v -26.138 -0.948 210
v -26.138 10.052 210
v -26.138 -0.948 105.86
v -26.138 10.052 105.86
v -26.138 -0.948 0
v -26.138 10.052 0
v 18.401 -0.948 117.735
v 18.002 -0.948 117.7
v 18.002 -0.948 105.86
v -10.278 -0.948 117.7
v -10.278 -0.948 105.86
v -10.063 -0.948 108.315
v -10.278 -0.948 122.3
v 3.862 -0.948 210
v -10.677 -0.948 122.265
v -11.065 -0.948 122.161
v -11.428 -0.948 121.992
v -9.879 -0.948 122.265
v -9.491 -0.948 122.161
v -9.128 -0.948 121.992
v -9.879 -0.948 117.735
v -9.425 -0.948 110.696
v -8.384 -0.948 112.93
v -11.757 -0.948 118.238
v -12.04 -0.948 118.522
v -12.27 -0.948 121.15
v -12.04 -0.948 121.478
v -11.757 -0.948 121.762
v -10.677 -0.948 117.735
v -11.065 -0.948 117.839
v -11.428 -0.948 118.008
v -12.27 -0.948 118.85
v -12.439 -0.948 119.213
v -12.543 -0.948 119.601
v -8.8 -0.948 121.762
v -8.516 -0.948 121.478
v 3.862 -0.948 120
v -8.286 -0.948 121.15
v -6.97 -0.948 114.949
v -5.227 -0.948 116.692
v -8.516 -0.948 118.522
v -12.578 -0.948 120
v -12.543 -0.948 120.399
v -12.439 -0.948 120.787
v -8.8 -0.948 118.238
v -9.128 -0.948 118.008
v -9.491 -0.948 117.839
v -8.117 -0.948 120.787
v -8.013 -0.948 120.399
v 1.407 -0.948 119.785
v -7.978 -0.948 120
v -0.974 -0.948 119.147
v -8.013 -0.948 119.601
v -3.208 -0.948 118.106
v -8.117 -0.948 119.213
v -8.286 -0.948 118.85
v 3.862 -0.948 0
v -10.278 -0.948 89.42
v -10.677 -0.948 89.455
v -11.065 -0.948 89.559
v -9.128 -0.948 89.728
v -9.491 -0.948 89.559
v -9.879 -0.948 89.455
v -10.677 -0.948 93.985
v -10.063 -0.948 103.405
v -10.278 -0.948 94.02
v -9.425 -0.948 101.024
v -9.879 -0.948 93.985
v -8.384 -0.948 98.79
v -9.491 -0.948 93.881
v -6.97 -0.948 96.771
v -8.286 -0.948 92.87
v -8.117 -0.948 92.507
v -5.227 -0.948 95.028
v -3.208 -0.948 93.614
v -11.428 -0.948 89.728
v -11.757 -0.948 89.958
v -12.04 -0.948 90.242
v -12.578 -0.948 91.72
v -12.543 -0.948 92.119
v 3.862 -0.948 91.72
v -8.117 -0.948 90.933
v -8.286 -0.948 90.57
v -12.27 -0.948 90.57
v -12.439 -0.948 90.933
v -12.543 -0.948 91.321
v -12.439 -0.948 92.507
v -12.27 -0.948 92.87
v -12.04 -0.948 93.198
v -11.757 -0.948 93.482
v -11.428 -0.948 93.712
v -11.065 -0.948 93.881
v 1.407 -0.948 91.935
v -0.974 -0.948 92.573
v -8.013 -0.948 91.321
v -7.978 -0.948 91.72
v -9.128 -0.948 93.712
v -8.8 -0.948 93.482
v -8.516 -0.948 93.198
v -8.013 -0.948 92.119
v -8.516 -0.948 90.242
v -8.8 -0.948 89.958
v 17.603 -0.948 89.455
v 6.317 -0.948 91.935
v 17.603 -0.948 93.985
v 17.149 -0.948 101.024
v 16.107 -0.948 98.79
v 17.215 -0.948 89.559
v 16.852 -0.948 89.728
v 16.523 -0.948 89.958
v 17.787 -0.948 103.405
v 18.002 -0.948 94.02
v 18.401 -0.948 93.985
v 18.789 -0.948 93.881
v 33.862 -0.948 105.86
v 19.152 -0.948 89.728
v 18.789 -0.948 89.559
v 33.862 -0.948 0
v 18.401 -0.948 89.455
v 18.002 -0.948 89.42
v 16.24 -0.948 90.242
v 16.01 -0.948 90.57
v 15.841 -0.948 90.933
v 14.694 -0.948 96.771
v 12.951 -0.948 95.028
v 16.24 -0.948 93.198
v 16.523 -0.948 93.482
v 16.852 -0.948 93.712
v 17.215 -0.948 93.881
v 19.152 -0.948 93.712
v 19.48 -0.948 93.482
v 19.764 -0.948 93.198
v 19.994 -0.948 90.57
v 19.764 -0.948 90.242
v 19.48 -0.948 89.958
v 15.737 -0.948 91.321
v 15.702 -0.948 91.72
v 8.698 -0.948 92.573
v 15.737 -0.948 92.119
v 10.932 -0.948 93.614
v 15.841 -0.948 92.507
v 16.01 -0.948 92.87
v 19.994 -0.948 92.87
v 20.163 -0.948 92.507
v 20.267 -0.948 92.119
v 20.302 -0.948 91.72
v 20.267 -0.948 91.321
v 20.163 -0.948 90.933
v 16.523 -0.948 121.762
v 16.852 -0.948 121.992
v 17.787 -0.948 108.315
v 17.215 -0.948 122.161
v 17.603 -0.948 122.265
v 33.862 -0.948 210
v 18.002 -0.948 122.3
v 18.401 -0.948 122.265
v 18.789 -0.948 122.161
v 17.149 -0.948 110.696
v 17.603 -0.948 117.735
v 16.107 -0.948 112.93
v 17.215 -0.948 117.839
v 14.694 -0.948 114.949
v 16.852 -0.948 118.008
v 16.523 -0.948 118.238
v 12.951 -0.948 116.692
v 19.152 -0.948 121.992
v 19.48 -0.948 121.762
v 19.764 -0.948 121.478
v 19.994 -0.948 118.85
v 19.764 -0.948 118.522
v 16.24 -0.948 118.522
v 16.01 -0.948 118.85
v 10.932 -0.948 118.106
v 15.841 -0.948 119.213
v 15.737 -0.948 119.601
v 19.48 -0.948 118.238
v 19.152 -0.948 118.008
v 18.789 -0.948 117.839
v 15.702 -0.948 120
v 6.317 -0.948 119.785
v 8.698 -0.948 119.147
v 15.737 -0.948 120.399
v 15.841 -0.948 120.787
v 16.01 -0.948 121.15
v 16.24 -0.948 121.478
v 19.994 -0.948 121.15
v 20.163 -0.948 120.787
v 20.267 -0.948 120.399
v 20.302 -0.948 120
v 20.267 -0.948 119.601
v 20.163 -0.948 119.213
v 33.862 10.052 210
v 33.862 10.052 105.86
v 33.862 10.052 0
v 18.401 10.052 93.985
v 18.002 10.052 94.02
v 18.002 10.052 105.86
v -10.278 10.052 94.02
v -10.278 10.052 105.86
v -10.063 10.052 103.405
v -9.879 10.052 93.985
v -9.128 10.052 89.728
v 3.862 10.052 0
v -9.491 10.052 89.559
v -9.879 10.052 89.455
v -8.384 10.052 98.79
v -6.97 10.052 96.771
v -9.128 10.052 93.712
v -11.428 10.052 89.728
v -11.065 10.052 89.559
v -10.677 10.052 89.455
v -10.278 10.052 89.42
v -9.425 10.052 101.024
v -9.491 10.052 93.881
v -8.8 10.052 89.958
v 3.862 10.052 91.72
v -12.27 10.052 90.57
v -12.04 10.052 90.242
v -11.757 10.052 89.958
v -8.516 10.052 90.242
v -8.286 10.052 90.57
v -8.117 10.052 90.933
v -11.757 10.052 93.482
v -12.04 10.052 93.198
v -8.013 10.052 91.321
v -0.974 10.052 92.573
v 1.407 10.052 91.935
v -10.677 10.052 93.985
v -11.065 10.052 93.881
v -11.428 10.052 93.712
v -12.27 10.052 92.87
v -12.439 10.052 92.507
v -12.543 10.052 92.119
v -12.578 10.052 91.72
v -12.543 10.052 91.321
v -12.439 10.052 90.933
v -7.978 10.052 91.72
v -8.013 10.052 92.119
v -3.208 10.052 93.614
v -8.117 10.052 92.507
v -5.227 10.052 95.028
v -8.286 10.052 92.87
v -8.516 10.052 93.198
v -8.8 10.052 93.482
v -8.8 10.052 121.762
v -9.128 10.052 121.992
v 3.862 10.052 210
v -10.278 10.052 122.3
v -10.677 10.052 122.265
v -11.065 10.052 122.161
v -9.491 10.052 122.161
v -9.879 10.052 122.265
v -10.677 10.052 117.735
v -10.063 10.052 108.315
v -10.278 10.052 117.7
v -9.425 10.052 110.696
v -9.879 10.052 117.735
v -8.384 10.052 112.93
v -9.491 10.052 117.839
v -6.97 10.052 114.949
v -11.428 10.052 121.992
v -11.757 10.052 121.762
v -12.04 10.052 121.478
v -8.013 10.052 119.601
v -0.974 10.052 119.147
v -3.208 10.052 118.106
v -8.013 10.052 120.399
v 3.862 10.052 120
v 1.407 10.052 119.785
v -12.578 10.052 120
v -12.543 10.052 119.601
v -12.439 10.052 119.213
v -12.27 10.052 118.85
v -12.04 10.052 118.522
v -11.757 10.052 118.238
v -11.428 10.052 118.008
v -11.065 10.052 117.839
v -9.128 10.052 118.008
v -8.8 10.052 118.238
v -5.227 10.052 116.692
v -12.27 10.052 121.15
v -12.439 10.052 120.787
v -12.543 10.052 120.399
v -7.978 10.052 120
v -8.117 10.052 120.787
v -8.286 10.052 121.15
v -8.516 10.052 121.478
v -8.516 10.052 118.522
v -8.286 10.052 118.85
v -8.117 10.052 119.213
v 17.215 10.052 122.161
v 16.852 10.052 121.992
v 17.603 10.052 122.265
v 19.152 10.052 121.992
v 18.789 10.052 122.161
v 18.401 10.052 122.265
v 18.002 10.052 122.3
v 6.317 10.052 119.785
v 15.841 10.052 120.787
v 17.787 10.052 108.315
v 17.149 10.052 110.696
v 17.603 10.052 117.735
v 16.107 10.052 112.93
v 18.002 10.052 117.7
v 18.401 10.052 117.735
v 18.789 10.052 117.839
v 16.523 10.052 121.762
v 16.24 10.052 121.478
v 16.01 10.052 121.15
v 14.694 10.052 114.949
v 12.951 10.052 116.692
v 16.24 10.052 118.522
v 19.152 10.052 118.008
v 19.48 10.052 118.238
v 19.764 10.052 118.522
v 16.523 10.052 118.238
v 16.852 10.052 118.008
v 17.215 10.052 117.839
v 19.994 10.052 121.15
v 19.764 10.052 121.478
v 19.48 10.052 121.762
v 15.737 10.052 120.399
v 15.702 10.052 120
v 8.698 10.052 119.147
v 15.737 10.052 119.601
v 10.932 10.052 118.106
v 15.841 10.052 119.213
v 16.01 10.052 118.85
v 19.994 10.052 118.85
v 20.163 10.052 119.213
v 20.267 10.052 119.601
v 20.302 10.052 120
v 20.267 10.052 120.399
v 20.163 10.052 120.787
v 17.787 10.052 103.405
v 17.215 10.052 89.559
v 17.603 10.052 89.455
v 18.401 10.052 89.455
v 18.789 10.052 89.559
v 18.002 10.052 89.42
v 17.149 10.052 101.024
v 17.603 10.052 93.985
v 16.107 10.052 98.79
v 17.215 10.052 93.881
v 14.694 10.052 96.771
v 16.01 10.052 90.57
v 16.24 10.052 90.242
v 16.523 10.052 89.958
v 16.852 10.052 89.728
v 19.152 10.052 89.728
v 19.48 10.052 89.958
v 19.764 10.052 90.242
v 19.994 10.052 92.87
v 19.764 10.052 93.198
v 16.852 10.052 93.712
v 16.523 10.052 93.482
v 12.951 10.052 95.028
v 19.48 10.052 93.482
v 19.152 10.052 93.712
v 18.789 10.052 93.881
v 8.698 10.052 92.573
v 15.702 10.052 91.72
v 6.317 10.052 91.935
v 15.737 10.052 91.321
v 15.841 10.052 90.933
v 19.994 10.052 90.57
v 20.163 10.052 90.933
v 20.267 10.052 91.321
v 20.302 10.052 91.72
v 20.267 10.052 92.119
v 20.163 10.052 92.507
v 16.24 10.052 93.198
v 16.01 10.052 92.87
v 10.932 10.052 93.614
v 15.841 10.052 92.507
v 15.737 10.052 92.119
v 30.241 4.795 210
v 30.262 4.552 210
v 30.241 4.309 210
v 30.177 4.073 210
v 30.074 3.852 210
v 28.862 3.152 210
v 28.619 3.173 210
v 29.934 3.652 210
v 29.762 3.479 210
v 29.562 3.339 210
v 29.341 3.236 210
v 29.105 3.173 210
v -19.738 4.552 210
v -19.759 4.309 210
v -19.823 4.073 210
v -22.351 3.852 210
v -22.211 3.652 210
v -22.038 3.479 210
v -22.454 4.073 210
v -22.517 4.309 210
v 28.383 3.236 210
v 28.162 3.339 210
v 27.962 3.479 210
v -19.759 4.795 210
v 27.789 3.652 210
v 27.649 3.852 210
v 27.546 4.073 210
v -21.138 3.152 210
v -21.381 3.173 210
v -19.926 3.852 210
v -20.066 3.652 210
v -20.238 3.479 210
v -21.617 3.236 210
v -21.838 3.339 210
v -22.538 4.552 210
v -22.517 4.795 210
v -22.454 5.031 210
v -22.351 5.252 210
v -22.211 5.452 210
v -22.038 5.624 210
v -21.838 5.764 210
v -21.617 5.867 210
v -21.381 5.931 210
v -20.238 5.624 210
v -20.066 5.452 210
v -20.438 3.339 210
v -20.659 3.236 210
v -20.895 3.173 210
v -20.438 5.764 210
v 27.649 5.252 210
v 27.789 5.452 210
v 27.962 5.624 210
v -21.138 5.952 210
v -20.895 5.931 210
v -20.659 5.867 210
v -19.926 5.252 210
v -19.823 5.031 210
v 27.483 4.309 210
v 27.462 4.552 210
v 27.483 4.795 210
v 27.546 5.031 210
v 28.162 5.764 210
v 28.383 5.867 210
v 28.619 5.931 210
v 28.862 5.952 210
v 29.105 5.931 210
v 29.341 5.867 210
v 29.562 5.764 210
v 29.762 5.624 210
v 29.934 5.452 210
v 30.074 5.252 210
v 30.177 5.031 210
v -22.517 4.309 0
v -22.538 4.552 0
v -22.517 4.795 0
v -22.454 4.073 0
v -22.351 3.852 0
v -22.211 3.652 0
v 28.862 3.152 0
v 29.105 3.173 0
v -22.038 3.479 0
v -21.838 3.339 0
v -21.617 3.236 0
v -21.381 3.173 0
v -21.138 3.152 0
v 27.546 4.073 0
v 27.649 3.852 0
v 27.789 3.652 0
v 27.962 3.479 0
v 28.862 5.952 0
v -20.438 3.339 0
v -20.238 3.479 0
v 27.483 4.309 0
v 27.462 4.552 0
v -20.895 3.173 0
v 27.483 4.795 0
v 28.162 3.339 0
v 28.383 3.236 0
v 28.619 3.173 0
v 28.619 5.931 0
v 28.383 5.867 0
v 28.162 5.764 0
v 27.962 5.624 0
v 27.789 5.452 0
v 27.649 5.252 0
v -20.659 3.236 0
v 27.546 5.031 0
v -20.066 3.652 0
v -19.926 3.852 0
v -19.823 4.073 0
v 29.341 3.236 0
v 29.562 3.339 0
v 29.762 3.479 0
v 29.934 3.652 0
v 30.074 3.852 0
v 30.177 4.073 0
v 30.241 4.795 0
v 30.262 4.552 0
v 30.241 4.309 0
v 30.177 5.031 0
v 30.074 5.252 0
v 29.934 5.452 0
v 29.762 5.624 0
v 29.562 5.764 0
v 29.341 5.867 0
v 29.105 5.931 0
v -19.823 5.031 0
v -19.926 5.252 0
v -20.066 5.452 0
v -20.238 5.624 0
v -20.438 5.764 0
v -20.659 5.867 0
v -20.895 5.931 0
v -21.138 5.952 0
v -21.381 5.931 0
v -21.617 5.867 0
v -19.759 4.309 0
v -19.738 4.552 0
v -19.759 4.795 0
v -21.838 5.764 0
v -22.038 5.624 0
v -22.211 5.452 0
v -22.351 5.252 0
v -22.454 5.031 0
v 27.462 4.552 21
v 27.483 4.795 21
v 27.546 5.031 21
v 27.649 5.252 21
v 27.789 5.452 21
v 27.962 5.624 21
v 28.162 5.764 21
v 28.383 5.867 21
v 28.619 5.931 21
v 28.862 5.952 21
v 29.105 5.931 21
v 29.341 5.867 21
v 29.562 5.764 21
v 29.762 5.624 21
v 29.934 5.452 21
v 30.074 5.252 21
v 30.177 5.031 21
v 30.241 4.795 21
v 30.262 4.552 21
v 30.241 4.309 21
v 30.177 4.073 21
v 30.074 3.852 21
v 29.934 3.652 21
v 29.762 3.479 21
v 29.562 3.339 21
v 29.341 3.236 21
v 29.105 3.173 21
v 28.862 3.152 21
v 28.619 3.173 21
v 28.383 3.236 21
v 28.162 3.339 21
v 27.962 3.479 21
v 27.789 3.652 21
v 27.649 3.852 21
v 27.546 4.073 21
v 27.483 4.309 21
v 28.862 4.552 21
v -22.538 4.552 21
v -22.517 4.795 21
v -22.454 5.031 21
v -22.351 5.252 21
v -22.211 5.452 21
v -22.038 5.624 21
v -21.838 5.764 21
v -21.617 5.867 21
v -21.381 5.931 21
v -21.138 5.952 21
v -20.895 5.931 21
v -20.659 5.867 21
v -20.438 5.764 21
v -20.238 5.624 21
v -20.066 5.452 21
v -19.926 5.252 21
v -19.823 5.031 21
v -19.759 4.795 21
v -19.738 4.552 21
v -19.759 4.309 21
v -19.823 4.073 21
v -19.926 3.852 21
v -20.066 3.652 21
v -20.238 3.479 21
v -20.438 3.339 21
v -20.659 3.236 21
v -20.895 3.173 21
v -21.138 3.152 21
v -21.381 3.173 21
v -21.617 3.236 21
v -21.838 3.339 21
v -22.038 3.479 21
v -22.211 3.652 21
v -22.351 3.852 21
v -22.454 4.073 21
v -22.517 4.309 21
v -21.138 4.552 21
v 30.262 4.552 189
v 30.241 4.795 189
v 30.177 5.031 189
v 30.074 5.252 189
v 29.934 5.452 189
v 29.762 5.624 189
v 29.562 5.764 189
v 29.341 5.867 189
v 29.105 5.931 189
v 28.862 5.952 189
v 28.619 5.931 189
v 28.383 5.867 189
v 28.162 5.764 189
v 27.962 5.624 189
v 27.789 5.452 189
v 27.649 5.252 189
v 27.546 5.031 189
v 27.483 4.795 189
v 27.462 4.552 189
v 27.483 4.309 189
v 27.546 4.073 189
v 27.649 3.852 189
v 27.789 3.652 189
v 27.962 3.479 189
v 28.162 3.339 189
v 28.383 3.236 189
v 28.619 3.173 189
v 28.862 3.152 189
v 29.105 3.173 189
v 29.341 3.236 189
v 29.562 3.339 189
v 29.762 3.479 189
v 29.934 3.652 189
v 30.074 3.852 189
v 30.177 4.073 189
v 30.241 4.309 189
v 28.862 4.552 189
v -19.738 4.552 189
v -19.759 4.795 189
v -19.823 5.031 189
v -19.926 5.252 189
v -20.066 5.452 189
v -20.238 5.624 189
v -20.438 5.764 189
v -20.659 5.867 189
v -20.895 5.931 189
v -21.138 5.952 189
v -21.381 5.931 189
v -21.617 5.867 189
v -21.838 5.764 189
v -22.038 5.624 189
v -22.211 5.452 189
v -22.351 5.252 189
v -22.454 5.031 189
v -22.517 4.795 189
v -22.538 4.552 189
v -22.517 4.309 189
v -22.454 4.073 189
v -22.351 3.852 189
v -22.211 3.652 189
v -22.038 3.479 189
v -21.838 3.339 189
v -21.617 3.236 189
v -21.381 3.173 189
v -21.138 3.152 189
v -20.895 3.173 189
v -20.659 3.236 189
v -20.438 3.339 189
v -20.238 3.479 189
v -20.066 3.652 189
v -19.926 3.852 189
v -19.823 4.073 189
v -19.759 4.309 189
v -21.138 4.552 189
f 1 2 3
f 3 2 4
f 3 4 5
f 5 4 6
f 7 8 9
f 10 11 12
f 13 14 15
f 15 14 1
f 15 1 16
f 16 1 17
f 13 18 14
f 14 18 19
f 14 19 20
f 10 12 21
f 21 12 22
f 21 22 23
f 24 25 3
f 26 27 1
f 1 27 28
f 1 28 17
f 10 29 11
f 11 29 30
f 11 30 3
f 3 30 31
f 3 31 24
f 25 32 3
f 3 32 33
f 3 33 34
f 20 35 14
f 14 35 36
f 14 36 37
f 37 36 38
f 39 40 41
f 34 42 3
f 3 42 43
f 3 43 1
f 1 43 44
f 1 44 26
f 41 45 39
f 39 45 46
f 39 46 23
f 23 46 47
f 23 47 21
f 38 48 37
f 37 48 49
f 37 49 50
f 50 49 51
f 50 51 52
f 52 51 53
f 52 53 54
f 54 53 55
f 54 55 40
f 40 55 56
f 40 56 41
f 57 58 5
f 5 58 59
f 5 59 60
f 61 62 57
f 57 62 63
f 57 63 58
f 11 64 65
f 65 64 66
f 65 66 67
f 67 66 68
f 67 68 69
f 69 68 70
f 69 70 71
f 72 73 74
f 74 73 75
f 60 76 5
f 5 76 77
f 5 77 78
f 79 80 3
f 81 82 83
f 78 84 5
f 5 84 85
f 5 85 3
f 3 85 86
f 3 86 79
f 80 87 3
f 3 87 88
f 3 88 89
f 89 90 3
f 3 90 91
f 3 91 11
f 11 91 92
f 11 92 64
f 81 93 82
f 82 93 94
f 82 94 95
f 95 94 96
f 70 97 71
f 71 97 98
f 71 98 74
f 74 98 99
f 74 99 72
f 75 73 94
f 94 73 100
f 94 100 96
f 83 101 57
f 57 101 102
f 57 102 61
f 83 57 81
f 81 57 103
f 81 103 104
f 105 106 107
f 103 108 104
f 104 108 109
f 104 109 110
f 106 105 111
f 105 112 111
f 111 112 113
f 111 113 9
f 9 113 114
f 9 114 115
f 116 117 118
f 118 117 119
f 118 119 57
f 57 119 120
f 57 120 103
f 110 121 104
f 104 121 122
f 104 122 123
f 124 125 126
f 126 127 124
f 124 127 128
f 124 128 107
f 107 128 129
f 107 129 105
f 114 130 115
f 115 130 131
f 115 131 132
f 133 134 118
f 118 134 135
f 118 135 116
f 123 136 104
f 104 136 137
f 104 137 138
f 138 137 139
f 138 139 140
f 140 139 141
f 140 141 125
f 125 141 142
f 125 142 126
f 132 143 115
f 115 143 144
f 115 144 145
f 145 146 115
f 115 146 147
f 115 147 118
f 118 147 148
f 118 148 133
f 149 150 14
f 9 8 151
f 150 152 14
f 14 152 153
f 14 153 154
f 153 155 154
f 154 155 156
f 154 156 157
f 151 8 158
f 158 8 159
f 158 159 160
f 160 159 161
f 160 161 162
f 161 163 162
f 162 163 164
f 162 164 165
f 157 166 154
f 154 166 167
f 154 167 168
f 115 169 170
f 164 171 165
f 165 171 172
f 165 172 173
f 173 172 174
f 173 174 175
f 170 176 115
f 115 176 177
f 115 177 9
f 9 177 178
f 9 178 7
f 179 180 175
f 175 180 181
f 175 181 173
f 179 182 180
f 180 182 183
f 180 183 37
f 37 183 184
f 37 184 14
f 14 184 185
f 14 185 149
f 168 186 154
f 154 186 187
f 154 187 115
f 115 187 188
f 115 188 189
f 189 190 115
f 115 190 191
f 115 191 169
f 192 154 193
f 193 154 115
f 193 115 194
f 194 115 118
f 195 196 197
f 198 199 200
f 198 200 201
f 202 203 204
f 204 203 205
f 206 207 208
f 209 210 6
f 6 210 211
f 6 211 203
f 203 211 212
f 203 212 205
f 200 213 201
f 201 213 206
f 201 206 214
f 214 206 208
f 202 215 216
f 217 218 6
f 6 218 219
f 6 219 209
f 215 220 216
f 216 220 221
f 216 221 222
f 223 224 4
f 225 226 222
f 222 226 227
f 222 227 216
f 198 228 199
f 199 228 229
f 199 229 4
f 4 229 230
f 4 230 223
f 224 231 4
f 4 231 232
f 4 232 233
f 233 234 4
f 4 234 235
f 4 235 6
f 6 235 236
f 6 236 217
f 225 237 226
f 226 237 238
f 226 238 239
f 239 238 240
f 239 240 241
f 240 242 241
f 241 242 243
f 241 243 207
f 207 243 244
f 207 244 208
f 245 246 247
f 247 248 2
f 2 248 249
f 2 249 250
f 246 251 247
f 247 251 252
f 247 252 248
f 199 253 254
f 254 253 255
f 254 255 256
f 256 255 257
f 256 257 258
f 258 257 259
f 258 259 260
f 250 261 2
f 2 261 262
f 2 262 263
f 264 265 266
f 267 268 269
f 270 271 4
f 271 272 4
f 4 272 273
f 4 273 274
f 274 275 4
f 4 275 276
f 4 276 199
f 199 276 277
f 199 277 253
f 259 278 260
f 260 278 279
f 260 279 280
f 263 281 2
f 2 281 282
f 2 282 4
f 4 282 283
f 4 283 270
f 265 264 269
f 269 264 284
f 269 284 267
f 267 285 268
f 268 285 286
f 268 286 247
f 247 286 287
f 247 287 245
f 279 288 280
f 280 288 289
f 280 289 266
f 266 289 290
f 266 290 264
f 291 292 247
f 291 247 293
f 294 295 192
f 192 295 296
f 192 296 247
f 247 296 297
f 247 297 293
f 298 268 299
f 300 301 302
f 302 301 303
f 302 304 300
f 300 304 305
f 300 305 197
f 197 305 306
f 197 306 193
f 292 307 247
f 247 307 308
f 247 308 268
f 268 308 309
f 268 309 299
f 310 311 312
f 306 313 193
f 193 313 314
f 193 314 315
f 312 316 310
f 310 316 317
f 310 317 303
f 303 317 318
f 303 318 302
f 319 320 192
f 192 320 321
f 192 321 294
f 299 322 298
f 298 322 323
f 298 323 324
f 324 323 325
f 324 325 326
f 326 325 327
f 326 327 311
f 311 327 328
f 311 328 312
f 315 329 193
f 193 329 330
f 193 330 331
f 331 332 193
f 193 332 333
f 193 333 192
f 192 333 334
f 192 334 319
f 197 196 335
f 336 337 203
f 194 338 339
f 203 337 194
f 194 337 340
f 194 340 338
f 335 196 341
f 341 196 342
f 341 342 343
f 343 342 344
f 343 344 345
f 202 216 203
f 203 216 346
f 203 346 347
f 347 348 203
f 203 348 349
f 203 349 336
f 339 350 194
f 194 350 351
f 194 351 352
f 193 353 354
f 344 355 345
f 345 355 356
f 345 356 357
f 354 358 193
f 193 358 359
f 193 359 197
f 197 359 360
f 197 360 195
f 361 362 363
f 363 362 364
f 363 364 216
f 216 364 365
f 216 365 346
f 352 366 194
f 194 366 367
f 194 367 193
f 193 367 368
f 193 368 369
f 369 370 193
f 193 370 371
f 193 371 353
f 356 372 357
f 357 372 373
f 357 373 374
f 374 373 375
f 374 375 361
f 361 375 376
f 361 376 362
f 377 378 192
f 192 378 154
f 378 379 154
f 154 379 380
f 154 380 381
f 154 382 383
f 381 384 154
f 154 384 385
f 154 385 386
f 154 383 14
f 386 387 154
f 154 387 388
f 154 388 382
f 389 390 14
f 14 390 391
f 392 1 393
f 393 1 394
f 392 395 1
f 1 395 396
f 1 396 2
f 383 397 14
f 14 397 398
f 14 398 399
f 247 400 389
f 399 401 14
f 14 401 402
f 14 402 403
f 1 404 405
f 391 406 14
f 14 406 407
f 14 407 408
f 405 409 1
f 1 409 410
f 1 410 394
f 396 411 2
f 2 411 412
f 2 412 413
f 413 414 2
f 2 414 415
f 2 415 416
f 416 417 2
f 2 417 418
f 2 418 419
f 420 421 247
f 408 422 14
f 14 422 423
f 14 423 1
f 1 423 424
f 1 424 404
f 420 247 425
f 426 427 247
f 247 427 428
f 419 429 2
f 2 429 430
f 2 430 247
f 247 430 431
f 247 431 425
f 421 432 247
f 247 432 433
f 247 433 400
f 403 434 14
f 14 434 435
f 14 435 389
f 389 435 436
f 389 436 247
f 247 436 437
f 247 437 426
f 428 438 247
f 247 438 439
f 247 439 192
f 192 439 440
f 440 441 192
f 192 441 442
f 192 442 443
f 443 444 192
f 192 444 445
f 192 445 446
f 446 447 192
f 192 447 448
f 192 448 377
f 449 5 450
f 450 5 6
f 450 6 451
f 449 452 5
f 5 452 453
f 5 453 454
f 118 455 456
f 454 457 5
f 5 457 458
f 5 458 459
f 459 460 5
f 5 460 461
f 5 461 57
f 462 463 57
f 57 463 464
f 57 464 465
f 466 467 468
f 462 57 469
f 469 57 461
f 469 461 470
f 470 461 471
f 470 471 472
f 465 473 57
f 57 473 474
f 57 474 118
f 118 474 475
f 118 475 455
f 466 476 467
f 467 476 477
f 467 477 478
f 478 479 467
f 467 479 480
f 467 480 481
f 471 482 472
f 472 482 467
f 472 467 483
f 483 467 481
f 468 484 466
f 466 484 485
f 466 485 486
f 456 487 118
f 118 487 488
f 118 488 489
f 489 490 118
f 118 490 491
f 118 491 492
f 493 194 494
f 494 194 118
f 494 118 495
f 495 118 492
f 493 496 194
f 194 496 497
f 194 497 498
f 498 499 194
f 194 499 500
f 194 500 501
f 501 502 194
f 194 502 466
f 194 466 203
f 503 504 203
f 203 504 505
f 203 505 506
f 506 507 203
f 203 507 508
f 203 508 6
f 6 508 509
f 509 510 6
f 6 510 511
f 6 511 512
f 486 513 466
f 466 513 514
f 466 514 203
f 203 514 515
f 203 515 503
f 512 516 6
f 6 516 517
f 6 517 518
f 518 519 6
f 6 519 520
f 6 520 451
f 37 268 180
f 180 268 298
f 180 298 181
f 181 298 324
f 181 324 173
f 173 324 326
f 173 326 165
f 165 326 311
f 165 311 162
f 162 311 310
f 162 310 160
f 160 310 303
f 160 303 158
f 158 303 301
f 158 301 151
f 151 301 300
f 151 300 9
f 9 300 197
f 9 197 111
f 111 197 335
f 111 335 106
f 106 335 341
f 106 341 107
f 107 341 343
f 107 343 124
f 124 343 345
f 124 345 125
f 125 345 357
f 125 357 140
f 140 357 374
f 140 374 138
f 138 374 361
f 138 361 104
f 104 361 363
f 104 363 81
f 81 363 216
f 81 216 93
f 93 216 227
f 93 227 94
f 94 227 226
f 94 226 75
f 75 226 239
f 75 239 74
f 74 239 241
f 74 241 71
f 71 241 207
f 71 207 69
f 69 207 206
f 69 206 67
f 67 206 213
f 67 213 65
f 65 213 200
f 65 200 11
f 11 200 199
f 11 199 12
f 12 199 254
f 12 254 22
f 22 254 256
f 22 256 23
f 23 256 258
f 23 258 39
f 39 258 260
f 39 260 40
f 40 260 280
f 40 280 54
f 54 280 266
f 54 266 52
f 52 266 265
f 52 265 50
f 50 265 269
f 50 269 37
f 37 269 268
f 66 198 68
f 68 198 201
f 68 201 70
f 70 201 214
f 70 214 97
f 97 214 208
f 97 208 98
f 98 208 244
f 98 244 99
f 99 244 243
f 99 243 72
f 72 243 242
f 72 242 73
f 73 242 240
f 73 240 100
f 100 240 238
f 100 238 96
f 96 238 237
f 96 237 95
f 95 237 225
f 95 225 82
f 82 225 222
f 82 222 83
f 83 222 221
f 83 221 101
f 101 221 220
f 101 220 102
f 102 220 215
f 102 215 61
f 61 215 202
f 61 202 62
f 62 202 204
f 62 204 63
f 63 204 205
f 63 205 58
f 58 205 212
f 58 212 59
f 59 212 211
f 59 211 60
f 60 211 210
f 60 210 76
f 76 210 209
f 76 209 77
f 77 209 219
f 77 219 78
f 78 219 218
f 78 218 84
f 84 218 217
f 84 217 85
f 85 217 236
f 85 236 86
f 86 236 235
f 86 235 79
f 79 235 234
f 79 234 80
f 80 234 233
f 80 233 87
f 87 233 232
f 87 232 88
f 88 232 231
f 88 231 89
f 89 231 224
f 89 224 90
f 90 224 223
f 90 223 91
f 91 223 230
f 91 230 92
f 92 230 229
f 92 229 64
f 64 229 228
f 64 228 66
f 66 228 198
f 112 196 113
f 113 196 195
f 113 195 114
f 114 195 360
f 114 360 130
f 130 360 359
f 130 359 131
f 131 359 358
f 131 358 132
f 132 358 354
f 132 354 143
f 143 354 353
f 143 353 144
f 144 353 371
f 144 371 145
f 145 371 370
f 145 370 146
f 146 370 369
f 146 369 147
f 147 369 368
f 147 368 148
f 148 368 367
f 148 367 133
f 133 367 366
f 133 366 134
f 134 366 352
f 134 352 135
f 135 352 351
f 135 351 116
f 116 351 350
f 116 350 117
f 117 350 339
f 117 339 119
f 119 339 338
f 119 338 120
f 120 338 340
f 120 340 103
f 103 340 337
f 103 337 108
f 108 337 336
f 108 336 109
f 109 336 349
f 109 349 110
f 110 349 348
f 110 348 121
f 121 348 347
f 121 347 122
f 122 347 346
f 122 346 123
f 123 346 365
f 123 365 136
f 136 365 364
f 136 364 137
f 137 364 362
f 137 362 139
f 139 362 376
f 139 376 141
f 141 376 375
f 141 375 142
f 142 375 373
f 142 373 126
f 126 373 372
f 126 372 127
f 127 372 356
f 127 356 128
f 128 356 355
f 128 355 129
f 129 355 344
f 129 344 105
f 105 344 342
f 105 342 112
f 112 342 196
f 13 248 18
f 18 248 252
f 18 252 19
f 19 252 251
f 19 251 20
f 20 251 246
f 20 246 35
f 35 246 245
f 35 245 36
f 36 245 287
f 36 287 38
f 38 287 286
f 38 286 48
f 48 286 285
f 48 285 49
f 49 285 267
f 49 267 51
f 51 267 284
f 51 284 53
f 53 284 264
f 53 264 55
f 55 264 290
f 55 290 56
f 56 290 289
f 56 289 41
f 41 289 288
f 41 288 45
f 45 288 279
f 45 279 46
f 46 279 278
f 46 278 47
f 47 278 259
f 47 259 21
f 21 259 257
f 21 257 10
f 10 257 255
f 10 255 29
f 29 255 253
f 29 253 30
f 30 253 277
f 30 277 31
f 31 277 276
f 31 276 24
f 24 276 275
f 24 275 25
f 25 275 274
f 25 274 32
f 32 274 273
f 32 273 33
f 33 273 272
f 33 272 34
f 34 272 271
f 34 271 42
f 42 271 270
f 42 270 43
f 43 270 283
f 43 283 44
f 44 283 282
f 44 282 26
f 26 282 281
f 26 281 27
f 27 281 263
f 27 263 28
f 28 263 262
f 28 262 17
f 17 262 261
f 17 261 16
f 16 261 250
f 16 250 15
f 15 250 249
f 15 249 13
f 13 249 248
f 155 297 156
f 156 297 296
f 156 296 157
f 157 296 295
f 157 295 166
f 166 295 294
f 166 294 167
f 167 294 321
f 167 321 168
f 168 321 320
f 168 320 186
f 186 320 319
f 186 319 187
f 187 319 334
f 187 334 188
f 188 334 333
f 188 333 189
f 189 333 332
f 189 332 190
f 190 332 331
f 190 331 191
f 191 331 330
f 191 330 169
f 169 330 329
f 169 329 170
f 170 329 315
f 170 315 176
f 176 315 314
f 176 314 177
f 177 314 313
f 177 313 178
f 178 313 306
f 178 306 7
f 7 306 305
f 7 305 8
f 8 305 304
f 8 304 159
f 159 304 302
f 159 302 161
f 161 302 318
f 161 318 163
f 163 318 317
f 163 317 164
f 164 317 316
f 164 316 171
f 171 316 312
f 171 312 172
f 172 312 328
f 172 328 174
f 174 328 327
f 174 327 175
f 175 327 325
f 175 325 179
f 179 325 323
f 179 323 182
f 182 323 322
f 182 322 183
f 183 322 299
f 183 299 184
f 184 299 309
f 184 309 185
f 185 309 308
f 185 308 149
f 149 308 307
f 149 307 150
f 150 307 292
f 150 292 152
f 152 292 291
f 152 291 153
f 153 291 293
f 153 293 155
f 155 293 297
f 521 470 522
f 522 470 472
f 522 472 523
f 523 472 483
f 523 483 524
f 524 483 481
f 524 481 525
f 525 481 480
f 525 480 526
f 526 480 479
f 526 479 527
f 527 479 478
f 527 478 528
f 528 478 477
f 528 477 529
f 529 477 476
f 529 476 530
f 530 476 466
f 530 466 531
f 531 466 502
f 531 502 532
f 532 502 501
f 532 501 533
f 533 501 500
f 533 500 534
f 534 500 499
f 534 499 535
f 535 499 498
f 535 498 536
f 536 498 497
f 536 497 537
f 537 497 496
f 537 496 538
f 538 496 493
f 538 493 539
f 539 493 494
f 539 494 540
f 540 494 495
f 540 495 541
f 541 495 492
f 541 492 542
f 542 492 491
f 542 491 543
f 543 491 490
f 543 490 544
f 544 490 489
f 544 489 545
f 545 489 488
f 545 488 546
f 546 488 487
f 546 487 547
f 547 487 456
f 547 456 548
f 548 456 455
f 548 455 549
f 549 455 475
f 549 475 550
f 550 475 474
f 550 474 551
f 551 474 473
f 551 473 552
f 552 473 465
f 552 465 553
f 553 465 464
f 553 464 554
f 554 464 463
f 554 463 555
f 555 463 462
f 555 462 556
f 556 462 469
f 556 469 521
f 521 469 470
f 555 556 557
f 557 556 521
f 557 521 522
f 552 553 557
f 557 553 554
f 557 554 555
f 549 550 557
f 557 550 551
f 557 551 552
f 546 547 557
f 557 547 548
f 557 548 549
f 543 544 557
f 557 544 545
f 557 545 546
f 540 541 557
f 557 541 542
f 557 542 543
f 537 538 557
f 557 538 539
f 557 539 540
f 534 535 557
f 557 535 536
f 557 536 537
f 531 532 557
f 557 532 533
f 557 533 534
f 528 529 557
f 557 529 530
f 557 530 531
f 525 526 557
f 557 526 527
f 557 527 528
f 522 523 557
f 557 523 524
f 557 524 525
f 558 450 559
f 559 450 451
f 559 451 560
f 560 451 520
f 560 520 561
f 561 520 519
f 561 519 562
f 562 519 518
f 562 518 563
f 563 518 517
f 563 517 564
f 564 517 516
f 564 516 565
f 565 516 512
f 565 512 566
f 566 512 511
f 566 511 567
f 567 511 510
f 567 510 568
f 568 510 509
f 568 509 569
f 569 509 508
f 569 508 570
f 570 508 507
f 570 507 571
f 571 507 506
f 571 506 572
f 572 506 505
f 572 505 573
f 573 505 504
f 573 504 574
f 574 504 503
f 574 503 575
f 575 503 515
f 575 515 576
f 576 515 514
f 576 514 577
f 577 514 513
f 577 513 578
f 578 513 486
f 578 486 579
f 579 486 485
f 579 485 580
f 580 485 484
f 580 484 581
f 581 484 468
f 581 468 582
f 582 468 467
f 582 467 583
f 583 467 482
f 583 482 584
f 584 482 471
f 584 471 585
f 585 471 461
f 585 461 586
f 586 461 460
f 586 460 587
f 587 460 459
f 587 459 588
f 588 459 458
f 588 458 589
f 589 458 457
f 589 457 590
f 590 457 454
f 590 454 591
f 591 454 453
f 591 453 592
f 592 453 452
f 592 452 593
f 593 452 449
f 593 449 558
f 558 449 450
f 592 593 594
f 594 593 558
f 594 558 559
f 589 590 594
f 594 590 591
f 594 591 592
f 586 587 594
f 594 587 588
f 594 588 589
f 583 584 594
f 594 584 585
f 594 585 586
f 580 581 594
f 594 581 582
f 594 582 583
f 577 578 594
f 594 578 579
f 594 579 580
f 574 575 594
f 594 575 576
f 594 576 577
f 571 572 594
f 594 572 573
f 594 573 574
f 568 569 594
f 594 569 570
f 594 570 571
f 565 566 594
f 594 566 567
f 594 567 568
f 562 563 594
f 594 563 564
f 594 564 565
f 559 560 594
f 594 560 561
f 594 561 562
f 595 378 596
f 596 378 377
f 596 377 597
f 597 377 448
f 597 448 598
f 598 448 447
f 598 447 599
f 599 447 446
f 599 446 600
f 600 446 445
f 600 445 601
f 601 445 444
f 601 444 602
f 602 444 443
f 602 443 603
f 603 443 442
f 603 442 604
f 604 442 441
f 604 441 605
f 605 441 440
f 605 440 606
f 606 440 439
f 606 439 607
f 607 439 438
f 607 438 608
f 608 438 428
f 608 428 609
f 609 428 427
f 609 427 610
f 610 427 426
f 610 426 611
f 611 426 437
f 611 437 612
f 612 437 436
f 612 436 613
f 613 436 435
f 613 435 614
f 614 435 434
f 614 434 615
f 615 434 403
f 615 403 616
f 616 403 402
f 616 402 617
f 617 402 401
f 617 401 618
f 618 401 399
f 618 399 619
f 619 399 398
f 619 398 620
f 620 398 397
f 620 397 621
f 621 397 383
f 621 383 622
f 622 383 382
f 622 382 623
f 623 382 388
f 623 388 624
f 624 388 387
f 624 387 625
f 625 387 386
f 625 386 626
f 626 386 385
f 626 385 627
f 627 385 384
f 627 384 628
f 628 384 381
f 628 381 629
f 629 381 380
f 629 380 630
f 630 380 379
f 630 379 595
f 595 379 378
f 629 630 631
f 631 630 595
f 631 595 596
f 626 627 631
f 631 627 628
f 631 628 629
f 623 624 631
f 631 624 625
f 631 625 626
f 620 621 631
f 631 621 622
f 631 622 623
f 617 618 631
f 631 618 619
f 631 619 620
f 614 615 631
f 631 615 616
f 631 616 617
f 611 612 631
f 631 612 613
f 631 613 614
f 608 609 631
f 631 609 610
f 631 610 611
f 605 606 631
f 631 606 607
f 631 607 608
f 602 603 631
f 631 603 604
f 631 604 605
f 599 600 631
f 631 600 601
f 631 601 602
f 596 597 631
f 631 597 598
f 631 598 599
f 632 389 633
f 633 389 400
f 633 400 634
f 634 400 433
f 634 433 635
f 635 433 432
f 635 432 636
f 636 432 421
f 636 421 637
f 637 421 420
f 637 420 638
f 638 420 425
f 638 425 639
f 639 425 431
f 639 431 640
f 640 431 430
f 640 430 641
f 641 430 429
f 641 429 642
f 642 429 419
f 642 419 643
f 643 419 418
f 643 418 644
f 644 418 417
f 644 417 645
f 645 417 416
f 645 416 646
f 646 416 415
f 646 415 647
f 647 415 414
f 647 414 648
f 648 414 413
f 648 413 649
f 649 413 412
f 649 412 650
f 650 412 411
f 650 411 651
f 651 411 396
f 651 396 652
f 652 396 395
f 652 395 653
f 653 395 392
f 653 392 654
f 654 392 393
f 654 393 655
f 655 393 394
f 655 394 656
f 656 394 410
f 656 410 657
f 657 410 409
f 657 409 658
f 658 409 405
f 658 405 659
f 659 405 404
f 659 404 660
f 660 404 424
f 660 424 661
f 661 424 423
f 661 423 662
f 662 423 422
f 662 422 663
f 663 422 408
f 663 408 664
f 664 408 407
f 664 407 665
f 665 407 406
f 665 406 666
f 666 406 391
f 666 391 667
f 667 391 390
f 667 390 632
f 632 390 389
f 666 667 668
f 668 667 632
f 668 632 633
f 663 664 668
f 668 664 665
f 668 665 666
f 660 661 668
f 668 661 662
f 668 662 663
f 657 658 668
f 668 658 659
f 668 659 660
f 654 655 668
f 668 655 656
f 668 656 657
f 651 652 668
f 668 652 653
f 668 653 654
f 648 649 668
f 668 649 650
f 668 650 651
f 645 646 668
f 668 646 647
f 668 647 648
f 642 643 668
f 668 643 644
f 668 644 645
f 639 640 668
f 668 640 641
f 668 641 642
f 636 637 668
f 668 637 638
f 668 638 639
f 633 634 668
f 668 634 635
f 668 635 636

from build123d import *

# Parameters (mm, degrees)
IZIM1_W                     = 60
IZIM1_H                     = 11
Y_KSEKLIK_EKSTR_ZYON1_DEPTH = 210
KES_EKSTR_ZYON1_DEPTH       = 213.996779223
KES_EKSTR_ZYON1_DEPTH_BACK  = 213.996779223
IZIM2_R                     = 14.14
IZIM2_R_2                   = 2.3
IZIM3_R                     = 1.4
KES_EKSTR_ZYON2_DEPTH       = 21
KES_EKSTR_ZYON3_START       = -21
IZIM4_R                     = 1.4
KES_EKSTR_ZYON3_DEPTH       = 21


with BuildPart() as part:
    # Çizim1 → Yükseklik-Ekstrüzyon1 (new body)
    with BuildSketch(Plane.XY):
        with Locations((3.861895391, 4.551835536)):
            Rectangle(IZIM1_W, IZIM1_H)
    extrude(amount=Y_KSEKLIK_EKSTR_ZYON1_DEPTH)

    # Çizim2 → Kes-Ekstrüzyon1 (cut, two sides: drawn at the far end of the back side and taken through both)
    with BuildSketch(Plane(origin=(0, 10.051835536, 0), x_dir=(1, 0, 0), z_dir=(0, 1, 0)).offset(-KES_EKSTR_ZYON1_DEPTH_BACK)):
        with Locations(Location((3.861895391, -105.86, 0), (0, 0, 270))):
            Circle(IZIM2_R)
        with Locations(Location((-10.278104609, -91.72, 0), (0, 0, 270))):
            Circle(IZIM2_R_2)
        with Locations(Location((18.001895391, -91.72, 0), (0, 0, 270))):
            Circle(IZIM2_R_2)
        with Locations(Location((18.001895391, -120, 0), (0, 0, 270))):
            Circle(IZIM2_R_2)
        with Locations(Location((-10.278104609, -120, 0), (0, 0, 270))):
            Circle(IZIM2_R_2)
    extrude(amount=KES_EKSTR_ZYON1_DEPTH + KES_EKSTR_ZYON1_DEPTH_BACK, mode=Mode.SUBTRACT)

    # Çizim3 → Kes-Ekstrüzyon2 (cut)
    with BuildSketch(Plane(origin=(0, 0, 0), x_dir=(-1, 0, 0), z_dir=(0, 0, -1))):
        with Locations((21.138104609, 4.551835536)):
            Circle(IZIM3_R)
        with Locations((-28.861895391, 4.551835536)):
            Circle(IZIM3_R)
    extrude(amount=-KES_EKSTR_ZYON2_DEPTH, mode=Mode.SUBTRACT)

    # Çizim4 → Kes-Ekstrüzyon3 (cut)
    with BuildSketch(Plane.XY.offset(210).offset(KES_EKSTR_ZYON3_START)):
        with Locations(Location((-21.138104609, 4.551835536, 0), (0, 0, 180))):
            Circle(IZIM4_R)
        with Locations(Location((28.861895391, 4.551835536, 0), (0, 0, 180))):
            Circle(IZIM4_R)
    extrude(amount=KES_EKSTR_ZYON3_DEPTH, mode=Mode.SUBTRACT)


solid = part.part
